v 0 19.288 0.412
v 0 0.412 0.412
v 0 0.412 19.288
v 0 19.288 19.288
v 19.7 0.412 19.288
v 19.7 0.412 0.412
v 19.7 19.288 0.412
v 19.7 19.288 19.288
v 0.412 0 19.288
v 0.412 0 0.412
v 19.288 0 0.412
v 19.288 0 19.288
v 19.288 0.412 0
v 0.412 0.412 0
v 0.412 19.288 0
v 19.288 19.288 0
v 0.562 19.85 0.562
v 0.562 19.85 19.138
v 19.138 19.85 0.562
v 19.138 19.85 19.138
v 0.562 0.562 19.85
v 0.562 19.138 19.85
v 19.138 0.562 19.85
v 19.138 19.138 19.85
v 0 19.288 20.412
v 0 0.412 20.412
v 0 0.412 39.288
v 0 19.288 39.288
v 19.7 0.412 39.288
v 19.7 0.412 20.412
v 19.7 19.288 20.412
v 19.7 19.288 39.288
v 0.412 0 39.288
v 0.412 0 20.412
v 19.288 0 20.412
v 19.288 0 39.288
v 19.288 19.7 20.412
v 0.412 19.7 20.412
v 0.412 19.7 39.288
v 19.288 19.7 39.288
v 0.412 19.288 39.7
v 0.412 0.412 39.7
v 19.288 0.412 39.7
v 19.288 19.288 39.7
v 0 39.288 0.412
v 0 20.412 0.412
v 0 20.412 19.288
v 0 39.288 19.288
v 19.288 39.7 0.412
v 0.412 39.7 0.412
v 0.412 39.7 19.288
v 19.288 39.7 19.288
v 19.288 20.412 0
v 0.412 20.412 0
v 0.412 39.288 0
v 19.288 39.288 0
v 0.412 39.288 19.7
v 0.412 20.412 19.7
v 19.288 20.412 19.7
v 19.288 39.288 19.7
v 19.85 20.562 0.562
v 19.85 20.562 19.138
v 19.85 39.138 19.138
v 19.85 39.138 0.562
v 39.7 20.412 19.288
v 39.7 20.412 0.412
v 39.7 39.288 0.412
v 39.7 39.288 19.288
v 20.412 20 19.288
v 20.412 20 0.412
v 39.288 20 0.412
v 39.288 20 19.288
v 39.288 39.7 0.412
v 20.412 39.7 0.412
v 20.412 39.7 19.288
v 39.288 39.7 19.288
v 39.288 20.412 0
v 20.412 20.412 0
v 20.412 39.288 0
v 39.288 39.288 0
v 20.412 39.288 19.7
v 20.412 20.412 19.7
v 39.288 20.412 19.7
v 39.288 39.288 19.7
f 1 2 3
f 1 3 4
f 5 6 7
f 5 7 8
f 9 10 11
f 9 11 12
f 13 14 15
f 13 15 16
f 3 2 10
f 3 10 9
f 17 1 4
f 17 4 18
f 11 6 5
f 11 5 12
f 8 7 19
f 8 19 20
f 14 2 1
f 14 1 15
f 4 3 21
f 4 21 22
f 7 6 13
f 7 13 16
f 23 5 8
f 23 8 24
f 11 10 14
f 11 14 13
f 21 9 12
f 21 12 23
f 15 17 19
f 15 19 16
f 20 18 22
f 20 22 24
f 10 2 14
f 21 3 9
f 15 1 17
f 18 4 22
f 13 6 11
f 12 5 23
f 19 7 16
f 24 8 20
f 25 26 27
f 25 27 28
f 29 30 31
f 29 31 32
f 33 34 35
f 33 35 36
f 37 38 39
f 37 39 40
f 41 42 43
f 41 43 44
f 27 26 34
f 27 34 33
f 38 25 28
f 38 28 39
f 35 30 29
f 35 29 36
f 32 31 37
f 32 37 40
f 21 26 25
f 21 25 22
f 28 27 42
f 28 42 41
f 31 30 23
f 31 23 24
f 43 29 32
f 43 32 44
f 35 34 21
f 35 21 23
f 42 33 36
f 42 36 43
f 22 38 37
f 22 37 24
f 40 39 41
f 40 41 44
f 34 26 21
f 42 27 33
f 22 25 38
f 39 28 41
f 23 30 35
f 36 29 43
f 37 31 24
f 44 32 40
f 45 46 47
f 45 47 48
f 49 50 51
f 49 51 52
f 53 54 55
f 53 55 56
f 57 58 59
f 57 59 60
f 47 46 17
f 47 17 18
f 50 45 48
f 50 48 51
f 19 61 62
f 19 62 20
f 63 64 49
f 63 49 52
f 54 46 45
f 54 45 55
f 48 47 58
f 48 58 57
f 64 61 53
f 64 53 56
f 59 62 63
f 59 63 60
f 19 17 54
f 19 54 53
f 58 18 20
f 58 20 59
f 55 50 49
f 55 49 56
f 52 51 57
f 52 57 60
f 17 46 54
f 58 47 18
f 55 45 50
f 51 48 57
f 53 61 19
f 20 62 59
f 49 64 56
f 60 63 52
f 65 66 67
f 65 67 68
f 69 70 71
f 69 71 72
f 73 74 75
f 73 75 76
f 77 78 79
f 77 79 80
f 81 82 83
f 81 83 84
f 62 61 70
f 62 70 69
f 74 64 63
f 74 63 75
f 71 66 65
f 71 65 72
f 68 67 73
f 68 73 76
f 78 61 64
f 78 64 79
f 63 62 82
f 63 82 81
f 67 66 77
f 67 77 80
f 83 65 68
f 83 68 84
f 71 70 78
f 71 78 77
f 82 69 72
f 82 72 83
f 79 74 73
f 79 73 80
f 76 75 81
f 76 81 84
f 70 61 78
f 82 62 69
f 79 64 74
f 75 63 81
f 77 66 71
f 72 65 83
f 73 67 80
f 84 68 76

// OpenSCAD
// Wongo piece 10: Tripod. GPL-3.0.
// 20 mm lattice; 0.15 mm inward surface clearance; 0.5 mm chamfer.
// Mesh is identical to the STL; changing unit scales the complete finished mesh.
unit=20;
scale([unit/20,unit/20,unit/20]) polyhedron(points=[[0,19.28786797,0.41213203],[0,0.41213203,0.41213203],[0,0.41213203,19.28786797],[0,19.28786797,19.28786797],[19.7,0.41213203,19.28786797],[19.7,0.41213203,0.41213203],[19.7,19.28786797,0.41213203],[19.7,19.28786797,19.28786797],[0.41213203,0,19.28786797],[0.41213203,0,0.41213203],[19.28786797,0,0.41213203],[19.28786797,0,19.28786797],[19.28786797,0.41213203,0],[0.41213203,0.41213203,0],[0.41213203,19.28786797,0],[19.28786797,19.28786797,0],[0.56213203,19.85,0.56213203],[0.56213203,19.85,19.13786797],[19.13786797,19.85,0.56213203],[19.13786797,19.85,19.13786797],[0.56213203,0.56213203,19.85],[0.56213203,19.13786797,19.85],[19.13786797,0.56213203,19.85],[19.13786797,19.13786797,19.85],[0,19.28786797,20.41213203],[0,0.41213203,20.41213203],[0,0.41213203,39.28786797],[0,19.28786797,39.28786797],[19.7,0.41213203,39.28786797],[19.7,0.41213203,20.41213203],[19.7,19.28786797,20.41213203],[19.7,19.28786797,39.28786797],[0.41213203,0,39.28786797],[0.41213203,0,20.41213203],[19.28786797,0,20.41213203],[19.28786797,0,39.28786797],[19.28786797,19.7,20.41213203],[0.41213203,19.7,20.41213203],[0.41213203,19.7,39.28786797],[19.28786797,19.7,39.28786797],[0.41213203,19.28786797,39.7],[0.41213203,0.41213203,39.7],[19.28786797,0.41213203,39.7],[19.28786797,19.28786797,39.7],[0,39.28786797,0.41213203],[0,20.41213203,0.41213203],[0,20.41213203,19.28786797],[0,39.28786797,19.28786797],[19.28786797,39.7,0.41213203],[0.41213203,39.7,0.41213203],[0.41213203,39.7,19.28786797],[19.28786797,39.7,19.28786797],[19.28786797,20.41213203,0],[0.41213203,20.41213203,0],[0.41213203,39.28786797,0],[19.28786797,39.28786797,0],[0.41213203,39.28786797,19.7],[0.41213203,20.41213203,19.7],[19.28786797,20.41213203,19.7],[19.28786797,39.28786797,19.7],[19.85,20.56213203,0.56213203],[19.85,20.56213203,19.13786797],[19.85,39.13786797,19.13786797],[19.85,39.13786797,0.56213203],[39.7,20.41213203,19.28786797],[39.7,20.41213203,0.41213203],[39.7,39.28786797,0.41213203],[39.7,39.28786797,19.28786797],[20.41213203,20,19.28786797],[20.41213203,20,0.41213203],[39.28786797,20,0.41213203],[39.28786797,20,19.28786797],[39.28786797,39.7,0.41213203],[20.41213203,39.7,0.41213203],[20.41213203,39.7,19.28786797],[39.28786797,39.7,19.28786797],[39.28786797,20.41213203,0],[20.41213203,20.41213203,0],[20.41213203,39.28786797,0],[39.28786797,39.28786797,0],[20.41213203,39.28786797,19.7],[20.41213203,20.41213203,19.7],[39.28786797,20.41213203,19.7],[39.28786797,39.28786797,19.7]],faces=[[2,1,0],[3,2,0],[6,5,4],[7,6,4],[10,9,8],[11,10,8],[14,13,12],[15,14,12],[9,1,2],[8,9,2],[3,0,16],[17,3,16],[4,5,10],[11,4,10],[18,6,7],[19,18,7],[0,1,13],[14,0,13],[20,2,3],[21,20,3],[12,5,6],[15,12,6],[7,4,22],[23,7,22],[13,9,10],[12,13,10],[11,8,20],[22,11,20],[18,16,14],[15,18,14],[21,17,19],[23,21,19],[13,1,9],[8,2,20],[16,0,14],[21,3,17],[10,5,12],[22,4,11],[15,6,18],[19,7,23],[26,25,24],[27,26,24],[30,29,28],[31,30,28],[34,33,32],[35,34,32],[38,37,36],[39,38,36],[42,41,40],[43,42,40],[33,25,26],[32,33,26],[27,24,37],[38,27,37],[28,29,34],[35,28,34],[36,30,31],[39,36,31],[24,25,20],[21,24,20],[41,26,27],[40,41,27],[22,29,30],[23,22,30],[31,28,42],[43,31,42],[20,33,34],[22,20,34],[35,32,41],[42,35,41],[36,37,21],[23,36,21],[40,38,39],[43,40,39],[20,25,33],[32,26,41],[37,24,21],[40,27,38],[34,29,22],[42,28,35],[23,30,36],[39,31,43],[46,45,44],[47,46,44],[50,49,48],[51,50,48],[54,53,52],[55,54,52],[58,57,56],[59,58,56],[16,45,46],[17,16,46],[47,44,49],[50,47,49],[61,60,18],[19,61,18],[48,63,62],[51,48,62],[44,45,53],[54,44,53],[57,46,47],[56,57,47],[52,60,63],[55,52,63],[62,61,58],[59,62,58],[53,16,18],[52,53,18],[19,17,57],[58,19,57],[48,49,54],[55,48,54],[56,50,51],[59,56,51],[53,45,16],[17,46,57],[49,44,54],[56,47,50],[18,60,52],[58,61,19],[55,63,48],[51,62,59],[66,65,64],[67,66,64],[70,69,68],[71,70,68],[74,73,72],[75,74,72],[78,77,76],[79,78,76],[82,81,80],[83,82,80],[69,60,61],[68,69,61],[62,63,73],[74,62,73],[64,65,70],[71,64,70],[72,66,67],[75,72,67],[63,60,77],[78,63,77],[81,61,62],[80,81,62],[76,65,66],[79,76,66],[67,64,82],[83,67,82],[77,69,70],[76,77,70],[71,68,81],[82,71,81],[72,73,78],[79,72,78],[80,74,75],[83,80,75],[77,60,69],[68,61,81],[73,63,78],[80,62,74],[70,65,76],[82,64,71],[79,66,72],[75,67,83]],convexity=10);
